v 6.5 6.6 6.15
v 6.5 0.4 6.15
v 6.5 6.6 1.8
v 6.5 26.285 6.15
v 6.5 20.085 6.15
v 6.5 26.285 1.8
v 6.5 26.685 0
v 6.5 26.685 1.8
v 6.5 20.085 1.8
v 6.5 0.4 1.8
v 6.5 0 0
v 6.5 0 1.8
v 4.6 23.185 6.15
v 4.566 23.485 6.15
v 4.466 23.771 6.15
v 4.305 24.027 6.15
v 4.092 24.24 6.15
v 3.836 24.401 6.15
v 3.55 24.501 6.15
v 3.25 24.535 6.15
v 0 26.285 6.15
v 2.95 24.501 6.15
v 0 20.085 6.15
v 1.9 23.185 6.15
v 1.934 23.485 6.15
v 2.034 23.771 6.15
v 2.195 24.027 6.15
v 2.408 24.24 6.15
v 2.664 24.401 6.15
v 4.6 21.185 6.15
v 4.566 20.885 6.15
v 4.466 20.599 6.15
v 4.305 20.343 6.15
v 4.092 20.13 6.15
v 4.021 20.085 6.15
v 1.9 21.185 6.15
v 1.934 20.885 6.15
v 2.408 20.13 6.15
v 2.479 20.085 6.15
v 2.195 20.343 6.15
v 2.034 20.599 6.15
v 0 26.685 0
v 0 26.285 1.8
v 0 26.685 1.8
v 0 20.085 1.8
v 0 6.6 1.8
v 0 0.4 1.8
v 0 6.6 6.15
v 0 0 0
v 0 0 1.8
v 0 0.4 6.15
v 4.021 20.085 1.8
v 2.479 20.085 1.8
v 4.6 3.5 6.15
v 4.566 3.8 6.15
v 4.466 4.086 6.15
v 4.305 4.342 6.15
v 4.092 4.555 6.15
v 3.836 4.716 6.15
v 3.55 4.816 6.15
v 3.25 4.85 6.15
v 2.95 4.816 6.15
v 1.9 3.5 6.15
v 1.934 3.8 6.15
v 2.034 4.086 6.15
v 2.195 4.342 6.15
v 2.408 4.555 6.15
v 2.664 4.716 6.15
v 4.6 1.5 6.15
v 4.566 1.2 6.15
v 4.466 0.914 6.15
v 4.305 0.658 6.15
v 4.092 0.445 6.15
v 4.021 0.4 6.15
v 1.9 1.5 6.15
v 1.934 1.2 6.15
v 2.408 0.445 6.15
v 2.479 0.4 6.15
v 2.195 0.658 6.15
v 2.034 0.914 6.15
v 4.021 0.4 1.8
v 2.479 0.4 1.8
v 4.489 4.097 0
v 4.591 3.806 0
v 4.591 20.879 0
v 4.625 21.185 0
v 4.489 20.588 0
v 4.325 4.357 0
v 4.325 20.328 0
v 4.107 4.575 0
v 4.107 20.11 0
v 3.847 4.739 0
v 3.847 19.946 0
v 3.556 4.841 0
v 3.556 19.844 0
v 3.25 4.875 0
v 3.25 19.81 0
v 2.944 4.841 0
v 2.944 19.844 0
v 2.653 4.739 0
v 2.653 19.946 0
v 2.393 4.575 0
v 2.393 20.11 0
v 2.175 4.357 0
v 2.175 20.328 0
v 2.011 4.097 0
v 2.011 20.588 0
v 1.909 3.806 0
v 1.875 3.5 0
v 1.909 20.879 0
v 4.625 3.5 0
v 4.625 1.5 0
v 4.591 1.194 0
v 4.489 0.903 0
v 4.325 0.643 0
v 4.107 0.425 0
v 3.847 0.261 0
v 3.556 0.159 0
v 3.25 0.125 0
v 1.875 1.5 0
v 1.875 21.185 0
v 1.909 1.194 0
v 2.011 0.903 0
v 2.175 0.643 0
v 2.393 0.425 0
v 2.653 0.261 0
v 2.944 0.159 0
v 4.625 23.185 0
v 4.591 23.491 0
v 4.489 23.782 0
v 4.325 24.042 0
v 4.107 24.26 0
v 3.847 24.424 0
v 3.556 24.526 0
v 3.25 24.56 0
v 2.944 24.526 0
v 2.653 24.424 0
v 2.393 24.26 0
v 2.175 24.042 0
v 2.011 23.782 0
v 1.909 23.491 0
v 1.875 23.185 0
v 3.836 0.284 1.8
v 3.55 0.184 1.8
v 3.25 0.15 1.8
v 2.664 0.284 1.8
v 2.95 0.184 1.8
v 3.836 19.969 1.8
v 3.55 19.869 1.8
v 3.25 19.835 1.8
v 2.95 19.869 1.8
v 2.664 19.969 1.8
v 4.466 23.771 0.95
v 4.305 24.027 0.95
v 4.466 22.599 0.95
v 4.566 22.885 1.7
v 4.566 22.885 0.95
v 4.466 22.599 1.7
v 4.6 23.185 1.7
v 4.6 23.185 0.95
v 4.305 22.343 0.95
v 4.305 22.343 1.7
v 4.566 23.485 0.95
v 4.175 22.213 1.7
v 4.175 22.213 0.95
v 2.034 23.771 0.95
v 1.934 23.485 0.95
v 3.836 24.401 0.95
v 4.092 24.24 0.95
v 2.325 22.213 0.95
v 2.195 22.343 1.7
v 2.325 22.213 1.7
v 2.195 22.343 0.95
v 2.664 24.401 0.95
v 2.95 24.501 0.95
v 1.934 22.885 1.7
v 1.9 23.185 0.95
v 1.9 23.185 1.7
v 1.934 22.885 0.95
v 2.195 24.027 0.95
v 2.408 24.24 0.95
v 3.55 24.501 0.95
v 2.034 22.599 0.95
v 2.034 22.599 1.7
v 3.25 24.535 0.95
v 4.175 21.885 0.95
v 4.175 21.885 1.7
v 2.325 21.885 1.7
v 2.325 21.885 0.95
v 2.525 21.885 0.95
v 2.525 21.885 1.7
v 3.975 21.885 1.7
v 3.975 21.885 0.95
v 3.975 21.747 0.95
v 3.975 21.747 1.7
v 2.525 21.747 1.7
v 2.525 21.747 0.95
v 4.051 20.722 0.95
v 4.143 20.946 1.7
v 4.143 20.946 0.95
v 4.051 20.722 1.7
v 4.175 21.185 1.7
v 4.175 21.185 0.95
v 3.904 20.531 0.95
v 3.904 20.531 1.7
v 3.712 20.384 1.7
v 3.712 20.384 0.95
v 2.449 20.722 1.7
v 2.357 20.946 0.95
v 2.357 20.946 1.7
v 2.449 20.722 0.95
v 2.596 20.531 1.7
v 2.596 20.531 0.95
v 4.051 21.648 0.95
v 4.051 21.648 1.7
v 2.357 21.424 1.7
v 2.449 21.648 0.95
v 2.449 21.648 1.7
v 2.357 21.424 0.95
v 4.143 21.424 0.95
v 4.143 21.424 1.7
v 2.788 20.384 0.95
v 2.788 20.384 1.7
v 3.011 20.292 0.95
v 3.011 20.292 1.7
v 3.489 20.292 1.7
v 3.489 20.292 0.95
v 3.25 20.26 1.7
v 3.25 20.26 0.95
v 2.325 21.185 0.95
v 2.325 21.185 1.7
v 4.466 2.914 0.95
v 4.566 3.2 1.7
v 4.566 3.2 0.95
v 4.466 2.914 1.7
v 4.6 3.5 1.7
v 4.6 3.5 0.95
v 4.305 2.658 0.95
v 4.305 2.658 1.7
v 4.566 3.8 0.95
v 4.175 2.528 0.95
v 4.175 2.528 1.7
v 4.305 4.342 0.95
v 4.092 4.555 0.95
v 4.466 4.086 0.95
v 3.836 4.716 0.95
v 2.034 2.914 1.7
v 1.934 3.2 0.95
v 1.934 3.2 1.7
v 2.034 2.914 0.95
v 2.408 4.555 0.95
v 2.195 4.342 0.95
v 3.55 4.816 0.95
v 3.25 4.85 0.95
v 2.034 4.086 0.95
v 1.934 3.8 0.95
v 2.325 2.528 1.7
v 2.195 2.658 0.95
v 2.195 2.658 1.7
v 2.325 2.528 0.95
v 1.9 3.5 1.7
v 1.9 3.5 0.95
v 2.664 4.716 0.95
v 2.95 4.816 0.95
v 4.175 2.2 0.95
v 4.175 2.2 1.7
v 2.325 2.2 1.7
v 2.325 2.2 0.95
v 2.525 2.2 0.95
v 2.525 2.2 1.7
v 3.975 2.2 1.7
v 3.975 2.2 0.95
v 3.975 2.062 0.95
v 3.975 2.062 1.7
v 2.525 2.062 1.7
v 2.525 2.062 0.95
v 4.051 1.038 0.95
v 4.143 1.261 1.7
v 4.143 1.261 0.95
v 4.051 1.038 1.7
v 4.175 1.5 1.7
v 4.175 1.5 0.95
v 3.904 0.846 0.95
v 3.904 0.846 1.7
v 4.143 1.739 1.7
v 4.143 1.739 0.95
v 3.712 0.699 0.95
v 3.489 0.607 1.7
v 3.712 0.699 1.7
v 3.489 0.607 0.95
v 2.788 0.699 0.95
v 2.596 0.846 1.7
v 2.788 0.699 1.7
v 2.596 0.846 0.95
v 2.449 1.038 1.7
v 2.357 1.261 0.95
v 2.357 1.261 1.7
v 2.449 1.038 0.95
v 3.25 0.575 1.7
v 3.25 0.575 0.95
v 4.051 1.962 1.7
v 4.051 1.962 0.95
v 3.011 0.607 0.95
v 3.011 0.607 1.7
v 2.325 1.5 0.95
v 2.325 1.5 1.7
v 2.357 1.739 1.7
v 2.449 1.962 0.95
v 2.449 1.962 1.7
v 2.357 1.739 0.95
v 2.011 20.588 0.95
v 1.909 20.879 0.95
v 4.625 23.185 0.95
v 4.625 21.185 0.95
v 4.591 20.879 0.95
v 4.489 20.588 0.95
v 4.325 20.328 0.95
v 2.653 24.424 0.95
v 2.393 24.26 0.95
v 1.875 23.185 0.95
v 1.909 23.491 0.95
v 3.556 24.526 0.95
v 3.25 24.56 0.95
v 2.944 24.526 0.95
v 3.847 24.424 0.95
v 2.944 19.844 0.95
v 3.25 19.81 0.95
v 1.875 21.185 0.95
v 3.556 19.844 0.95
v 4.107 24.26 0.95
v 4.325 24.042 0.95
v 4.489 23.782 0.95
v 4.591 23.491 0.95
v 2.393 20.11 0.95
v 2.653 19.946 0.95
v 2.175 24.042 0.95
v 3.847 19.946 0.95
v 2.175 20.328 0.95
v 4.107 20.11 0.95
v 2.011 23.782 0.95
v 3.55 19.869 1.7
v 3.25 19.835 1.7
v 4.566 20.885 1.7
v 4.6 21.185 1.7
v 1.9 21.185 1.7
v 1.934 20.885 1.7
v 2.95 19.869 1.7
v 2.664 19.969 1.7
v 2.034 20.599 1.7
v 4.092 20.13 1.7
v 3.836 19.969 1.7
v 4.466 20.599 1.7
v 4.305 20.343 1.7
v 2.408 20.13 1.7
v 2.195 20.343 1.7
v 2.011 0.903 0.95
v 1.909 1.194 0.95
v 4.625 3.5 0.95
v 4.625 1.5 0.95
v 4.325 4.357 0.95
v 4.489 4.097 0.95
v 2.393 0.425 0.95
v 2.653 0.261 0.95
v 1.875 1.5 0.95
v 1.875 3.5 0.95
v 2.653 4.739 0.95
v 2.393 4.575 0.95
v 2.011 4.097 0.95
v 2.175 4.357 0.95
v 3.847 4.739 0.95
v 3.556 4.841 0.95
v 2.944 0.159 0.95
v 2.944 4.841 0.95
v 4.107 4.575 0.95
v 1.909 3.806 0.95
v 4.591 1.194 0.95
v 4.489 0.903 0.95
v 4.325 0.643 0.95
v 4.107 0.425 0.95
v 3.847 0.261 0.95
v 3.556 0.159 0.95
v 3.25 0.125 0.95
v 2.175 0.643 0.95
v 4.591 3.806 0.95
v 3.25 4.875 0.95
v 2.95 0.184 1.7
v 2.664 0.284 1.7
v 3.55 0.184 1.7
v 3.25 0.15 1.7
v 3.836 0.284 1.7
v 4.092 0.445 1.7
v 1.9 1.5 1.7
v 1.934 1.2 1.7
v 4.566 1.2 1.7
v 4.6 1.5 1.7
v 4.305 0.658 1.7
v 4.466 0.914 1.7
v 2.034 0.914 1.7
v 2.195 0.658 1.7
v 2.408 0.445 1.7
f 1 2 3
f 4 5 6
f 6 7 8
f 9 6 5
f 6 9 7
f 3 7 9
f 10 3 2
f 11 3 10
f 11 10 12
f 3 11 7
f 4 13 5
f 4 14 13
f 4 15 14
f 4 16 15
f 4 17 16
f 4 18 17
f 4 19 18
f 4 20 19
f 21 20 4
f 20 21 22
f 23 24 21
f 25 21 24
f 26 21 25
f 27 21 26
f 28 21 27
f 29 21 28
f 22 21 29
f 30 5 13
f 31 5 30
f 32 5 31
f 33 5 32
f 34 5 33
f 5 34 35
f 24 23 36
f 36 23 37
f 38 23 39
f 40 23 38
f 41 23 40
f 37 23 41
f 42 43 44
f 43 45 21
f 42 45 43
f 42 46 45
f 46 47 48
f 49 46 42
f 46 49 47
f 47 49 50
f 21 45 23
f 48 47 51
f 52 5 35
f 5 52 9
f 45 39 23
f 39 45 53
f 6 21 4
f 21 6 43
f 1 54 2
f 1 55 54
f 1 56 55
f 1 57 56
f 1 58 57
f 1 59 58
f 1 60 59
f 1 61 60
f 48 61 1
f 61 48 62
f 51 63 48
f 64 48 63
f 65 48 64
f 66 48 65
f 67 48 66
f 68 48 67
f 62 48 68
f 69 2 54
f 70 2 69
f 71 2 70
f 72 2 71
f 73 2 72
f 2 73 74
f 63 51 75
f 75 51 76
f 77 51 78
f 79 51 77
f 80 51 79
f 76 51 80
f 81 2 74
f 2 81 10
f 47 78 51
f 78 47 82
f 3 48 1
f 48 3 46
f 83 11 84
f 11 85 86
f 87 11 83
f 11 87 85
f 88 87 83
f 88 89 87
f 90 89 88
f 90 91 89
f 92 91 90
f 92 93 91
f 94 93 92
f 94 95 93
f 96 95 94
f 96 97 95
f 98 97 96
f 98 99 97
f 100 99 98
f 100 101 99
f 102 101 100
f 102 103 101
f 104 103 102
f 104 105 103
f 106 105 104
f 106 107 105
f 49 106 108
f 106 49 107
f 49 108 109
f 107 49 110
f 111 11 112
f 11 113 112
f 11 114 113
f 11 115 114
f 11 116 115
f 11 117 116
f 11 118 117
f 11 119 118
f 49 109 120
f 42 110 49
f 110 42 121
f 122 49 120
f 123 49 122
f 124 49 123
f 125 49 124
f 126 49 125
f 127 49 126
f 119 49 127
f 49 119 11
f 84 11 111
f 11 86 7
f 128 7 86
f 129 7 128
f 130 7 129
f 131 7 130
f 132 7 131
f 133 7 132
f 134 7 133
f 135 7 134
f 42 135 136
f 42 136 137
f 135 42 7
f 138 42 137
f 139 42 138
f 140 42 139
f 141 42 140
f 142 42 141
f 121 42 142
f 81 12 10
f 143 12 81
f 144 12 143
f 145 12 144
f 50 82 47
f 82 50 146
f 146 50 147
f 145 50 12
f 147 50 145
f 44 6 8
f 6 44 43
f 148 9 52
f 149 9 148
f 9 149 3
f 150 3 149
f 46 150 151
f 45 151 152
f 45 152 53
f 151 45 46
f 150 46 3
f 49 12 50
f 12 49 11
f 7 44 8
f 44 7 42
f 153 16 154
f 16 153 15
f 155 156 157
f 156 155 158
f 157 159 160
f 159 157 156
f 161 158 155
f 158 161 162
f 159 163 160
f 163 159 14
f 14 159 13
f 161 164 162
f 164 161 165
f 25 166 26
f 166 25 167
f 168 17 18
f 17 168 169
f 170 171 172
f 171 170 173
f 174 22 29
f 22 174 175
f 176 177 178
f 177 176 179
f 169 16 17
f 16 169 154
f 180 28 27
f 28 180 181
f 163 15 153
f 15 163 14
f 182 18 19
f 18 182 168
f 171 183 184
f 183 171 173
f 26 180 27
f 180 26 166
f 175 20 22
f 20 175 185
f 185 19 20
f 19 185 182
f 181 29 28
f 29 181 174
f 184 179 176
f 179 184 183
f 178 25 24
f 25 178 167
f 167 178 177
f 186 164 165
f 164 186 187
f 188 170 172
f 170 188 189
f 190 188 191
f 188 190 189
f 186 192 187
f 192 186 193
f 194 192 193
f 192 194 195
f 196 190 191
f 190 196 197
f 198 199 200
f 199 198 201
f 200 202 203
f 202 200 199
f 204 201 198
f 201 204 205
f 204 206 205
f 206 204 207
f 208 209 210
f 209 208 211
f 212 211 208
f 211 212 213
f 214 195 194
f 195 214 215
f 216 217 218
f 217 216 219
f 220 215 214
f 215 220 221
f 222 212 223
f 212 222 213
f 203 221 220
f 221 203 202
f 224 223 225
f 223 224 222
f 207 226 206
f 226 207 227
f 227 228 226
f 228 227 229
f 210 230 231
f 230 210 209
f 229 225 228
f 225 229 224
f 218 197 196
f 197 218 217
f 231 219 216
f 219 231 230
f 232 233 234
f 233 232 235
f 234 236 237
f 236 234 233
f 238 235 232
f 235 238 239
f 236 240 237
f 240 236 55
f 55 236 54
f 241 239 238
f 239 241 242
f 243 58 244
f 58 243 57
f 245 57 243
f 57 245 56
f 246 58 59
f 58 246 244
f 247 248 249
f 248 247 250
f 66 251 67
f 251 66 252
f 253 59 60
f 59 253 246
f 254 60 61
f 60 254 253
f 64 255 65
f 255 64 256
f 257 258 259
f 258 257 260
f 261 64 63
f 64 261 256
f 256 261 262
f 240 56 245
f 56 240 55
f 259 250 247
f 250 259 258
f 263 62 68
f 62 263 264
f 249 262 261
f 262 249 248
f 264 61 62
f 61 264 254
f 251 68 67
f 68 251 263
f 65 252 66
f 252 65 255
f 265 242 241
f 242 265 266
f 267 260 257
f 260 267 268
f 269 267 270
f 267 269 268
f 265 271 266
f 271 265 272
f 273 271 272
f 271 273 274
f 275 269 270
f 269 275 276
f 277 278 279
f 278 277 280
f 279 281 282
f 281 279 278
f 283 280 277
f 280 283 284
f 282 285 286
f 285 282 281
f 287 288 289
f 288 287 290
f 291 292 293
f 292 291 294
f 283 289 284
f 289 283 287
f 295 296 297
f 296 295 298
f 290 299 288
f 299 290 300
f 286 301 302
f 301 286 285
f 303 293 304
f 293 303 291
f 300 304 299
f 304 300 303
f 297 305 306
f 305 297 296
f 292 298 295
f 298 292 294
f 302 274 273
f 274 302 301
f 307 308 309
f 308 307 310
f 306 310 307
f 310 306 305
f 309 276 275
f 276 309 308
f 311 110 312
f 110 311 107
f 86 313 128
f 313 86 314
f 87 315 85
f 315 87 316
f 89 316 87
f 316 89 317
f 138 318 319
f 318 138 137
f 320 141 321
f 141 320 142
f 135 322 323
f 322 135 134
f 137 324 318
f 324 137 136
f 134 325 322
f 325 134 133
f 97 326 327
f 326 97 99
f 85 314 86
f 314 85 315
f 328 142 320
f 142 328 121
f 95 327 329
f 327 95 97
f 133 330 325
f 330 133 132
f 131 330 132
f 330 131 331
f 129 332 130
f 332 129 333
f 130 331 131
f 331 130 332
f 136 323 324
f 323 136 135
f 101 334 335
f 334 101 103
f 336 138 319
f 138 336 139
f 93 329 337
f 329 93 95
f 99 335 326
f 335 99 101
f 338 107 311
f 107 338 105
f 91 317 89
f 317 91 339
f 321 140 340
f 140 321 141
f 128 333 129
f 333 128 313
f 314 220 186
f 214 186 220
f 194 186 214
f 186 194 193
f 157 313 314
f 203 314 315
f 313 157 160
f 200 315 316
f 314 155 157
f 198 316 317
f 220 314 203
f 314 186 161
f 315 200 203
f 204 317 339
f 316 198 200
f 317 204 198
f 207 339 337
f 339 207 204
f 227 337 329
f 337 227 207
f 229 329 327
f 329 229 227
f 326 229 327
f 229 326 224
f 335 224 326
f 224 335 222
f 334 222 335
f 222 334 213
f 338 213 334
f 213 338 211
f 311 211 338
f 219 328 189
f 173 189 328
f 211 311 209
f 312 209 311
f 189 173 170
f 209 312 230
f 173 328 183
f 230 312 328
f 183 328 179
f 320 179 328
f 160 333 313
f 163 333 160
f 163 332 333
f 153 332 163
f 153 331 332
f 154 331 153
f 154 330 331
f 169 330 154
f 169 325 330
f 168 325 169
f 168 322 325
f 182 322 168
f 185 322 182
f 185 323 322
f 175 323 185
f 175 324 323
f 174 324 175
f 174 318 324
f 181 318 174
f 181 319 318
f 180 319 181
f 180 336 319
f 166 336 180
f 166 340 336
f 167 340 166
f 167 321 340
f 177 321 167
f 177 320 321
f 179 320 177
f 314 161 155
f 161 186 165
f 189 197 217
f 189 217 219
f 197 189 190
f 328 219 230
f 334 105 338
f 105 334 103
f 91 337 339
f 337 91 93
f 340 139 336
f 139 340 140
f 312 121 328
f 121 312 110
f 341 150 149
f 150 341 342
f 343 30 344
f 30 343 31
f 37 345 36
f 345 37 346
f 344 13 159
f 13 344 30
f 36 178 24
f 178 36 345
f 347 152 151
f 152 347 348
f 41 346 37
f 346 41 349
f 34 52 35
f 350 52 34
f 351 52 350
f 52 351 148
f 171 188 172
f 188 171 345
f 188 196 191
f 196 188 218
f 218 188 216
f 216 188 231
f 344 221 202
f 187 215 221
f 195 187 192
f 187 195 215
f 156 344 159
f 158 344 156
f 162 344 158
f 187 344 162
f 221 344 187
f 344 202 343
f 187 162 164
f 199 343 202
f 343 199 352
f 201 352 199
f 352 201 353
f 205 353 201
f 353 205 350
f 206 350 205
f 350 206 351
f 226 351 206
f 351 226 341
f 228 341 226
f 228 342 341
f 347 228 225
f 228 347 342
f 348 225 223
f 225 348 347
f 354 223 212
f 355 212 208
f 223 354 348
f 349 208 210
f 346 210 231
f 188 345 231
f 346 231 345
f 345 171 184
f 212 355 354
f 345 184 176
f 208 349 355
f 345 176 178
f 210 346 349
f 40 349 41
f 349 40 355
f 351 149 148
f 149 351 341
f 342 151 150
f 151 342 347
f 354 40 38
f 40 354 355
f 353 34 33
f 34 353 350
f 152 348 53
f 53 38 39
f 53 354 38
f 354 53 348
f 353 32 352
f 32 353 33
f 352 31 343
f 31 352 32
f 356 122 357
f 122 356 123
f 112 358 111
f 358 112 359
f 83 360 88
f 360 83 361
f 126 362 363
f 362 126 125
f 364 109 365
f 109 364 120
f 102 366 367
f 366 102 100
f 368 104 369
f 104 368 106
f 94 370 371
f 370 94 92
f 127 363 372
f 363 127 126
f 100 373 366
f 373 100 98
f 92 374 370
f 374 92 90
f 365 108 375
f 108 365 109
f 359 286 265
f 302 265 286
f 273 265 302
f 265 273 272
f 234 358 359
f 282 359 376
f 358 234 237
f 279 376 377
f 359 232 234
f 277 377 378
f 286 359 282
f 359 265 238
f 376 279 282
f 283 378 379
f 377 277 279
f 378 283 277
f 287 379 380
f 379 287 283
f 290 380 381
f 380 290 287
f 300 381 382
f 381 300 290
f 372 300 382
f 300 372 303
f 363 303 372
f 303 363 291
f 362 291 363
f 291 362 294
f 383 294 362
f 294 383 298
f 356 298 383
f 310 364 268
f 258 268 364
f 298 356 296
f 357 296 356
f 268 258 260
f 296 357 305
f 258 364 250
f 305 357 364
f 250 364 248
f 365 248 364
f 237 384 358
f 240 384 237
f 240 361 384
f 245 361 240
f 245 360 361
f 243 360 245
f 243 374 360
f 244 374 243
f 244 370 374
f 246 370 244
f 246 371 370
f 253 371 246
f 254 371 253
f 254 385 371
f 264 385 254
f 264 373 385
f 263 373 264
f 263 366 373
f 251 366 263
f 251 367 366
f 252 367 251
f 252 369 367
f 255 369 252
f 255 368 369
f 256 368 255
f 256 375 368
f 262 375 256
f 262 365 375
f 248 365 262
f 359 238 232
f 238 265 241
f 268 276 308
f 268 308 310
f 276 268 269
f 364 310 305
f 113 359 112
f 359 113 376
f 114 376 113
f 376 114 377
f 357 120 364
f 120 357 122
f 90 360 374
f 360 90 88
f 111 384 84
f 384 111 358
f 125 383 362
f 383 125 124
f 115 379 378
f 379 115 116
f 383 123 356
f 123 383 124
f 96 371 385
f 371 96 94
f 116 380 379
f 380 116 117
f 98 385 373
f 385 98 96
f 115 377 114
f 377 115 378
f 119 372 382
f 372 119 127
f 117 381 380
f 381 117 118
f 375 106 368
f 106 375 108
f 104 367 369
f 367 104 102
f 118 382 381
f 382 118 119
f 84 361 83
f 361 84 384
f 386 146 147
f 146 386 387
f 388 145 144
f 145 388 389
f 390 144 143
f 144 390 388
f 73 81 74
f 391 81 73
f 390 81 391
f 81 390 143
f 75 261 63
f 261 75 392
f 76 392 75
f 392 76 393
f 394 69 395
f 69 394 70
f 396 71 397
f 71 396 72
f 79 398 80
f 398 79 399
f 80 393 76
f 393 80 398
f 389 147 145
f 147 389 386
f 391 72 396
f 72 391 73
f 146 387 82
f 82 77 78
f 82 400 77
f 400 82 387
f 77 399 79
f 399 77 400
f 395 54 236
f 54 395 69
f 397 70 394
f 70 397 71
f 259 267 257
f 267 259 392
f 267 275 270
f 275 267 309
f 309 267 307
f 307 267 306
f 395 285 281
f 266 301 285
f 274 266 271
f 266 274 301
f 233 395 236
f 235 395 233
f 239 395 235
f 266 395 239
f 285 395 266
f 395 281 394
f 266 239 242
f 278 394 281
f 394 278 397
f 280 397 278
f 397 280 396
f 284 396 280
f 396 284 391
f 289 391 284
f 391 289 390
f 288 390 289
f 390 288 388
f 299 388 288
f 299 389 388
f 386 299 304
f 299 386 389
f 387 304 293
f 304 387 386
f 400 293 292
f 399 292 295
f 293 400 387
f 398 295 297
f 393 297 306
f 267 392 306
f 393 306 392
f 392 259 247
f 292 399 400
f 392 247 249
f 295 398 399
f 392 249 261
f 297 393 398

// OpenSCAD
include <../matrixportal/matrixportal_s3_mount.scad>;

// Print two copies. Each bar locks one column of the MatrixPortal's two
// mounting holes onto the carrier's fixed printed locating pins.
matrixportal_s3_keeper_print();
